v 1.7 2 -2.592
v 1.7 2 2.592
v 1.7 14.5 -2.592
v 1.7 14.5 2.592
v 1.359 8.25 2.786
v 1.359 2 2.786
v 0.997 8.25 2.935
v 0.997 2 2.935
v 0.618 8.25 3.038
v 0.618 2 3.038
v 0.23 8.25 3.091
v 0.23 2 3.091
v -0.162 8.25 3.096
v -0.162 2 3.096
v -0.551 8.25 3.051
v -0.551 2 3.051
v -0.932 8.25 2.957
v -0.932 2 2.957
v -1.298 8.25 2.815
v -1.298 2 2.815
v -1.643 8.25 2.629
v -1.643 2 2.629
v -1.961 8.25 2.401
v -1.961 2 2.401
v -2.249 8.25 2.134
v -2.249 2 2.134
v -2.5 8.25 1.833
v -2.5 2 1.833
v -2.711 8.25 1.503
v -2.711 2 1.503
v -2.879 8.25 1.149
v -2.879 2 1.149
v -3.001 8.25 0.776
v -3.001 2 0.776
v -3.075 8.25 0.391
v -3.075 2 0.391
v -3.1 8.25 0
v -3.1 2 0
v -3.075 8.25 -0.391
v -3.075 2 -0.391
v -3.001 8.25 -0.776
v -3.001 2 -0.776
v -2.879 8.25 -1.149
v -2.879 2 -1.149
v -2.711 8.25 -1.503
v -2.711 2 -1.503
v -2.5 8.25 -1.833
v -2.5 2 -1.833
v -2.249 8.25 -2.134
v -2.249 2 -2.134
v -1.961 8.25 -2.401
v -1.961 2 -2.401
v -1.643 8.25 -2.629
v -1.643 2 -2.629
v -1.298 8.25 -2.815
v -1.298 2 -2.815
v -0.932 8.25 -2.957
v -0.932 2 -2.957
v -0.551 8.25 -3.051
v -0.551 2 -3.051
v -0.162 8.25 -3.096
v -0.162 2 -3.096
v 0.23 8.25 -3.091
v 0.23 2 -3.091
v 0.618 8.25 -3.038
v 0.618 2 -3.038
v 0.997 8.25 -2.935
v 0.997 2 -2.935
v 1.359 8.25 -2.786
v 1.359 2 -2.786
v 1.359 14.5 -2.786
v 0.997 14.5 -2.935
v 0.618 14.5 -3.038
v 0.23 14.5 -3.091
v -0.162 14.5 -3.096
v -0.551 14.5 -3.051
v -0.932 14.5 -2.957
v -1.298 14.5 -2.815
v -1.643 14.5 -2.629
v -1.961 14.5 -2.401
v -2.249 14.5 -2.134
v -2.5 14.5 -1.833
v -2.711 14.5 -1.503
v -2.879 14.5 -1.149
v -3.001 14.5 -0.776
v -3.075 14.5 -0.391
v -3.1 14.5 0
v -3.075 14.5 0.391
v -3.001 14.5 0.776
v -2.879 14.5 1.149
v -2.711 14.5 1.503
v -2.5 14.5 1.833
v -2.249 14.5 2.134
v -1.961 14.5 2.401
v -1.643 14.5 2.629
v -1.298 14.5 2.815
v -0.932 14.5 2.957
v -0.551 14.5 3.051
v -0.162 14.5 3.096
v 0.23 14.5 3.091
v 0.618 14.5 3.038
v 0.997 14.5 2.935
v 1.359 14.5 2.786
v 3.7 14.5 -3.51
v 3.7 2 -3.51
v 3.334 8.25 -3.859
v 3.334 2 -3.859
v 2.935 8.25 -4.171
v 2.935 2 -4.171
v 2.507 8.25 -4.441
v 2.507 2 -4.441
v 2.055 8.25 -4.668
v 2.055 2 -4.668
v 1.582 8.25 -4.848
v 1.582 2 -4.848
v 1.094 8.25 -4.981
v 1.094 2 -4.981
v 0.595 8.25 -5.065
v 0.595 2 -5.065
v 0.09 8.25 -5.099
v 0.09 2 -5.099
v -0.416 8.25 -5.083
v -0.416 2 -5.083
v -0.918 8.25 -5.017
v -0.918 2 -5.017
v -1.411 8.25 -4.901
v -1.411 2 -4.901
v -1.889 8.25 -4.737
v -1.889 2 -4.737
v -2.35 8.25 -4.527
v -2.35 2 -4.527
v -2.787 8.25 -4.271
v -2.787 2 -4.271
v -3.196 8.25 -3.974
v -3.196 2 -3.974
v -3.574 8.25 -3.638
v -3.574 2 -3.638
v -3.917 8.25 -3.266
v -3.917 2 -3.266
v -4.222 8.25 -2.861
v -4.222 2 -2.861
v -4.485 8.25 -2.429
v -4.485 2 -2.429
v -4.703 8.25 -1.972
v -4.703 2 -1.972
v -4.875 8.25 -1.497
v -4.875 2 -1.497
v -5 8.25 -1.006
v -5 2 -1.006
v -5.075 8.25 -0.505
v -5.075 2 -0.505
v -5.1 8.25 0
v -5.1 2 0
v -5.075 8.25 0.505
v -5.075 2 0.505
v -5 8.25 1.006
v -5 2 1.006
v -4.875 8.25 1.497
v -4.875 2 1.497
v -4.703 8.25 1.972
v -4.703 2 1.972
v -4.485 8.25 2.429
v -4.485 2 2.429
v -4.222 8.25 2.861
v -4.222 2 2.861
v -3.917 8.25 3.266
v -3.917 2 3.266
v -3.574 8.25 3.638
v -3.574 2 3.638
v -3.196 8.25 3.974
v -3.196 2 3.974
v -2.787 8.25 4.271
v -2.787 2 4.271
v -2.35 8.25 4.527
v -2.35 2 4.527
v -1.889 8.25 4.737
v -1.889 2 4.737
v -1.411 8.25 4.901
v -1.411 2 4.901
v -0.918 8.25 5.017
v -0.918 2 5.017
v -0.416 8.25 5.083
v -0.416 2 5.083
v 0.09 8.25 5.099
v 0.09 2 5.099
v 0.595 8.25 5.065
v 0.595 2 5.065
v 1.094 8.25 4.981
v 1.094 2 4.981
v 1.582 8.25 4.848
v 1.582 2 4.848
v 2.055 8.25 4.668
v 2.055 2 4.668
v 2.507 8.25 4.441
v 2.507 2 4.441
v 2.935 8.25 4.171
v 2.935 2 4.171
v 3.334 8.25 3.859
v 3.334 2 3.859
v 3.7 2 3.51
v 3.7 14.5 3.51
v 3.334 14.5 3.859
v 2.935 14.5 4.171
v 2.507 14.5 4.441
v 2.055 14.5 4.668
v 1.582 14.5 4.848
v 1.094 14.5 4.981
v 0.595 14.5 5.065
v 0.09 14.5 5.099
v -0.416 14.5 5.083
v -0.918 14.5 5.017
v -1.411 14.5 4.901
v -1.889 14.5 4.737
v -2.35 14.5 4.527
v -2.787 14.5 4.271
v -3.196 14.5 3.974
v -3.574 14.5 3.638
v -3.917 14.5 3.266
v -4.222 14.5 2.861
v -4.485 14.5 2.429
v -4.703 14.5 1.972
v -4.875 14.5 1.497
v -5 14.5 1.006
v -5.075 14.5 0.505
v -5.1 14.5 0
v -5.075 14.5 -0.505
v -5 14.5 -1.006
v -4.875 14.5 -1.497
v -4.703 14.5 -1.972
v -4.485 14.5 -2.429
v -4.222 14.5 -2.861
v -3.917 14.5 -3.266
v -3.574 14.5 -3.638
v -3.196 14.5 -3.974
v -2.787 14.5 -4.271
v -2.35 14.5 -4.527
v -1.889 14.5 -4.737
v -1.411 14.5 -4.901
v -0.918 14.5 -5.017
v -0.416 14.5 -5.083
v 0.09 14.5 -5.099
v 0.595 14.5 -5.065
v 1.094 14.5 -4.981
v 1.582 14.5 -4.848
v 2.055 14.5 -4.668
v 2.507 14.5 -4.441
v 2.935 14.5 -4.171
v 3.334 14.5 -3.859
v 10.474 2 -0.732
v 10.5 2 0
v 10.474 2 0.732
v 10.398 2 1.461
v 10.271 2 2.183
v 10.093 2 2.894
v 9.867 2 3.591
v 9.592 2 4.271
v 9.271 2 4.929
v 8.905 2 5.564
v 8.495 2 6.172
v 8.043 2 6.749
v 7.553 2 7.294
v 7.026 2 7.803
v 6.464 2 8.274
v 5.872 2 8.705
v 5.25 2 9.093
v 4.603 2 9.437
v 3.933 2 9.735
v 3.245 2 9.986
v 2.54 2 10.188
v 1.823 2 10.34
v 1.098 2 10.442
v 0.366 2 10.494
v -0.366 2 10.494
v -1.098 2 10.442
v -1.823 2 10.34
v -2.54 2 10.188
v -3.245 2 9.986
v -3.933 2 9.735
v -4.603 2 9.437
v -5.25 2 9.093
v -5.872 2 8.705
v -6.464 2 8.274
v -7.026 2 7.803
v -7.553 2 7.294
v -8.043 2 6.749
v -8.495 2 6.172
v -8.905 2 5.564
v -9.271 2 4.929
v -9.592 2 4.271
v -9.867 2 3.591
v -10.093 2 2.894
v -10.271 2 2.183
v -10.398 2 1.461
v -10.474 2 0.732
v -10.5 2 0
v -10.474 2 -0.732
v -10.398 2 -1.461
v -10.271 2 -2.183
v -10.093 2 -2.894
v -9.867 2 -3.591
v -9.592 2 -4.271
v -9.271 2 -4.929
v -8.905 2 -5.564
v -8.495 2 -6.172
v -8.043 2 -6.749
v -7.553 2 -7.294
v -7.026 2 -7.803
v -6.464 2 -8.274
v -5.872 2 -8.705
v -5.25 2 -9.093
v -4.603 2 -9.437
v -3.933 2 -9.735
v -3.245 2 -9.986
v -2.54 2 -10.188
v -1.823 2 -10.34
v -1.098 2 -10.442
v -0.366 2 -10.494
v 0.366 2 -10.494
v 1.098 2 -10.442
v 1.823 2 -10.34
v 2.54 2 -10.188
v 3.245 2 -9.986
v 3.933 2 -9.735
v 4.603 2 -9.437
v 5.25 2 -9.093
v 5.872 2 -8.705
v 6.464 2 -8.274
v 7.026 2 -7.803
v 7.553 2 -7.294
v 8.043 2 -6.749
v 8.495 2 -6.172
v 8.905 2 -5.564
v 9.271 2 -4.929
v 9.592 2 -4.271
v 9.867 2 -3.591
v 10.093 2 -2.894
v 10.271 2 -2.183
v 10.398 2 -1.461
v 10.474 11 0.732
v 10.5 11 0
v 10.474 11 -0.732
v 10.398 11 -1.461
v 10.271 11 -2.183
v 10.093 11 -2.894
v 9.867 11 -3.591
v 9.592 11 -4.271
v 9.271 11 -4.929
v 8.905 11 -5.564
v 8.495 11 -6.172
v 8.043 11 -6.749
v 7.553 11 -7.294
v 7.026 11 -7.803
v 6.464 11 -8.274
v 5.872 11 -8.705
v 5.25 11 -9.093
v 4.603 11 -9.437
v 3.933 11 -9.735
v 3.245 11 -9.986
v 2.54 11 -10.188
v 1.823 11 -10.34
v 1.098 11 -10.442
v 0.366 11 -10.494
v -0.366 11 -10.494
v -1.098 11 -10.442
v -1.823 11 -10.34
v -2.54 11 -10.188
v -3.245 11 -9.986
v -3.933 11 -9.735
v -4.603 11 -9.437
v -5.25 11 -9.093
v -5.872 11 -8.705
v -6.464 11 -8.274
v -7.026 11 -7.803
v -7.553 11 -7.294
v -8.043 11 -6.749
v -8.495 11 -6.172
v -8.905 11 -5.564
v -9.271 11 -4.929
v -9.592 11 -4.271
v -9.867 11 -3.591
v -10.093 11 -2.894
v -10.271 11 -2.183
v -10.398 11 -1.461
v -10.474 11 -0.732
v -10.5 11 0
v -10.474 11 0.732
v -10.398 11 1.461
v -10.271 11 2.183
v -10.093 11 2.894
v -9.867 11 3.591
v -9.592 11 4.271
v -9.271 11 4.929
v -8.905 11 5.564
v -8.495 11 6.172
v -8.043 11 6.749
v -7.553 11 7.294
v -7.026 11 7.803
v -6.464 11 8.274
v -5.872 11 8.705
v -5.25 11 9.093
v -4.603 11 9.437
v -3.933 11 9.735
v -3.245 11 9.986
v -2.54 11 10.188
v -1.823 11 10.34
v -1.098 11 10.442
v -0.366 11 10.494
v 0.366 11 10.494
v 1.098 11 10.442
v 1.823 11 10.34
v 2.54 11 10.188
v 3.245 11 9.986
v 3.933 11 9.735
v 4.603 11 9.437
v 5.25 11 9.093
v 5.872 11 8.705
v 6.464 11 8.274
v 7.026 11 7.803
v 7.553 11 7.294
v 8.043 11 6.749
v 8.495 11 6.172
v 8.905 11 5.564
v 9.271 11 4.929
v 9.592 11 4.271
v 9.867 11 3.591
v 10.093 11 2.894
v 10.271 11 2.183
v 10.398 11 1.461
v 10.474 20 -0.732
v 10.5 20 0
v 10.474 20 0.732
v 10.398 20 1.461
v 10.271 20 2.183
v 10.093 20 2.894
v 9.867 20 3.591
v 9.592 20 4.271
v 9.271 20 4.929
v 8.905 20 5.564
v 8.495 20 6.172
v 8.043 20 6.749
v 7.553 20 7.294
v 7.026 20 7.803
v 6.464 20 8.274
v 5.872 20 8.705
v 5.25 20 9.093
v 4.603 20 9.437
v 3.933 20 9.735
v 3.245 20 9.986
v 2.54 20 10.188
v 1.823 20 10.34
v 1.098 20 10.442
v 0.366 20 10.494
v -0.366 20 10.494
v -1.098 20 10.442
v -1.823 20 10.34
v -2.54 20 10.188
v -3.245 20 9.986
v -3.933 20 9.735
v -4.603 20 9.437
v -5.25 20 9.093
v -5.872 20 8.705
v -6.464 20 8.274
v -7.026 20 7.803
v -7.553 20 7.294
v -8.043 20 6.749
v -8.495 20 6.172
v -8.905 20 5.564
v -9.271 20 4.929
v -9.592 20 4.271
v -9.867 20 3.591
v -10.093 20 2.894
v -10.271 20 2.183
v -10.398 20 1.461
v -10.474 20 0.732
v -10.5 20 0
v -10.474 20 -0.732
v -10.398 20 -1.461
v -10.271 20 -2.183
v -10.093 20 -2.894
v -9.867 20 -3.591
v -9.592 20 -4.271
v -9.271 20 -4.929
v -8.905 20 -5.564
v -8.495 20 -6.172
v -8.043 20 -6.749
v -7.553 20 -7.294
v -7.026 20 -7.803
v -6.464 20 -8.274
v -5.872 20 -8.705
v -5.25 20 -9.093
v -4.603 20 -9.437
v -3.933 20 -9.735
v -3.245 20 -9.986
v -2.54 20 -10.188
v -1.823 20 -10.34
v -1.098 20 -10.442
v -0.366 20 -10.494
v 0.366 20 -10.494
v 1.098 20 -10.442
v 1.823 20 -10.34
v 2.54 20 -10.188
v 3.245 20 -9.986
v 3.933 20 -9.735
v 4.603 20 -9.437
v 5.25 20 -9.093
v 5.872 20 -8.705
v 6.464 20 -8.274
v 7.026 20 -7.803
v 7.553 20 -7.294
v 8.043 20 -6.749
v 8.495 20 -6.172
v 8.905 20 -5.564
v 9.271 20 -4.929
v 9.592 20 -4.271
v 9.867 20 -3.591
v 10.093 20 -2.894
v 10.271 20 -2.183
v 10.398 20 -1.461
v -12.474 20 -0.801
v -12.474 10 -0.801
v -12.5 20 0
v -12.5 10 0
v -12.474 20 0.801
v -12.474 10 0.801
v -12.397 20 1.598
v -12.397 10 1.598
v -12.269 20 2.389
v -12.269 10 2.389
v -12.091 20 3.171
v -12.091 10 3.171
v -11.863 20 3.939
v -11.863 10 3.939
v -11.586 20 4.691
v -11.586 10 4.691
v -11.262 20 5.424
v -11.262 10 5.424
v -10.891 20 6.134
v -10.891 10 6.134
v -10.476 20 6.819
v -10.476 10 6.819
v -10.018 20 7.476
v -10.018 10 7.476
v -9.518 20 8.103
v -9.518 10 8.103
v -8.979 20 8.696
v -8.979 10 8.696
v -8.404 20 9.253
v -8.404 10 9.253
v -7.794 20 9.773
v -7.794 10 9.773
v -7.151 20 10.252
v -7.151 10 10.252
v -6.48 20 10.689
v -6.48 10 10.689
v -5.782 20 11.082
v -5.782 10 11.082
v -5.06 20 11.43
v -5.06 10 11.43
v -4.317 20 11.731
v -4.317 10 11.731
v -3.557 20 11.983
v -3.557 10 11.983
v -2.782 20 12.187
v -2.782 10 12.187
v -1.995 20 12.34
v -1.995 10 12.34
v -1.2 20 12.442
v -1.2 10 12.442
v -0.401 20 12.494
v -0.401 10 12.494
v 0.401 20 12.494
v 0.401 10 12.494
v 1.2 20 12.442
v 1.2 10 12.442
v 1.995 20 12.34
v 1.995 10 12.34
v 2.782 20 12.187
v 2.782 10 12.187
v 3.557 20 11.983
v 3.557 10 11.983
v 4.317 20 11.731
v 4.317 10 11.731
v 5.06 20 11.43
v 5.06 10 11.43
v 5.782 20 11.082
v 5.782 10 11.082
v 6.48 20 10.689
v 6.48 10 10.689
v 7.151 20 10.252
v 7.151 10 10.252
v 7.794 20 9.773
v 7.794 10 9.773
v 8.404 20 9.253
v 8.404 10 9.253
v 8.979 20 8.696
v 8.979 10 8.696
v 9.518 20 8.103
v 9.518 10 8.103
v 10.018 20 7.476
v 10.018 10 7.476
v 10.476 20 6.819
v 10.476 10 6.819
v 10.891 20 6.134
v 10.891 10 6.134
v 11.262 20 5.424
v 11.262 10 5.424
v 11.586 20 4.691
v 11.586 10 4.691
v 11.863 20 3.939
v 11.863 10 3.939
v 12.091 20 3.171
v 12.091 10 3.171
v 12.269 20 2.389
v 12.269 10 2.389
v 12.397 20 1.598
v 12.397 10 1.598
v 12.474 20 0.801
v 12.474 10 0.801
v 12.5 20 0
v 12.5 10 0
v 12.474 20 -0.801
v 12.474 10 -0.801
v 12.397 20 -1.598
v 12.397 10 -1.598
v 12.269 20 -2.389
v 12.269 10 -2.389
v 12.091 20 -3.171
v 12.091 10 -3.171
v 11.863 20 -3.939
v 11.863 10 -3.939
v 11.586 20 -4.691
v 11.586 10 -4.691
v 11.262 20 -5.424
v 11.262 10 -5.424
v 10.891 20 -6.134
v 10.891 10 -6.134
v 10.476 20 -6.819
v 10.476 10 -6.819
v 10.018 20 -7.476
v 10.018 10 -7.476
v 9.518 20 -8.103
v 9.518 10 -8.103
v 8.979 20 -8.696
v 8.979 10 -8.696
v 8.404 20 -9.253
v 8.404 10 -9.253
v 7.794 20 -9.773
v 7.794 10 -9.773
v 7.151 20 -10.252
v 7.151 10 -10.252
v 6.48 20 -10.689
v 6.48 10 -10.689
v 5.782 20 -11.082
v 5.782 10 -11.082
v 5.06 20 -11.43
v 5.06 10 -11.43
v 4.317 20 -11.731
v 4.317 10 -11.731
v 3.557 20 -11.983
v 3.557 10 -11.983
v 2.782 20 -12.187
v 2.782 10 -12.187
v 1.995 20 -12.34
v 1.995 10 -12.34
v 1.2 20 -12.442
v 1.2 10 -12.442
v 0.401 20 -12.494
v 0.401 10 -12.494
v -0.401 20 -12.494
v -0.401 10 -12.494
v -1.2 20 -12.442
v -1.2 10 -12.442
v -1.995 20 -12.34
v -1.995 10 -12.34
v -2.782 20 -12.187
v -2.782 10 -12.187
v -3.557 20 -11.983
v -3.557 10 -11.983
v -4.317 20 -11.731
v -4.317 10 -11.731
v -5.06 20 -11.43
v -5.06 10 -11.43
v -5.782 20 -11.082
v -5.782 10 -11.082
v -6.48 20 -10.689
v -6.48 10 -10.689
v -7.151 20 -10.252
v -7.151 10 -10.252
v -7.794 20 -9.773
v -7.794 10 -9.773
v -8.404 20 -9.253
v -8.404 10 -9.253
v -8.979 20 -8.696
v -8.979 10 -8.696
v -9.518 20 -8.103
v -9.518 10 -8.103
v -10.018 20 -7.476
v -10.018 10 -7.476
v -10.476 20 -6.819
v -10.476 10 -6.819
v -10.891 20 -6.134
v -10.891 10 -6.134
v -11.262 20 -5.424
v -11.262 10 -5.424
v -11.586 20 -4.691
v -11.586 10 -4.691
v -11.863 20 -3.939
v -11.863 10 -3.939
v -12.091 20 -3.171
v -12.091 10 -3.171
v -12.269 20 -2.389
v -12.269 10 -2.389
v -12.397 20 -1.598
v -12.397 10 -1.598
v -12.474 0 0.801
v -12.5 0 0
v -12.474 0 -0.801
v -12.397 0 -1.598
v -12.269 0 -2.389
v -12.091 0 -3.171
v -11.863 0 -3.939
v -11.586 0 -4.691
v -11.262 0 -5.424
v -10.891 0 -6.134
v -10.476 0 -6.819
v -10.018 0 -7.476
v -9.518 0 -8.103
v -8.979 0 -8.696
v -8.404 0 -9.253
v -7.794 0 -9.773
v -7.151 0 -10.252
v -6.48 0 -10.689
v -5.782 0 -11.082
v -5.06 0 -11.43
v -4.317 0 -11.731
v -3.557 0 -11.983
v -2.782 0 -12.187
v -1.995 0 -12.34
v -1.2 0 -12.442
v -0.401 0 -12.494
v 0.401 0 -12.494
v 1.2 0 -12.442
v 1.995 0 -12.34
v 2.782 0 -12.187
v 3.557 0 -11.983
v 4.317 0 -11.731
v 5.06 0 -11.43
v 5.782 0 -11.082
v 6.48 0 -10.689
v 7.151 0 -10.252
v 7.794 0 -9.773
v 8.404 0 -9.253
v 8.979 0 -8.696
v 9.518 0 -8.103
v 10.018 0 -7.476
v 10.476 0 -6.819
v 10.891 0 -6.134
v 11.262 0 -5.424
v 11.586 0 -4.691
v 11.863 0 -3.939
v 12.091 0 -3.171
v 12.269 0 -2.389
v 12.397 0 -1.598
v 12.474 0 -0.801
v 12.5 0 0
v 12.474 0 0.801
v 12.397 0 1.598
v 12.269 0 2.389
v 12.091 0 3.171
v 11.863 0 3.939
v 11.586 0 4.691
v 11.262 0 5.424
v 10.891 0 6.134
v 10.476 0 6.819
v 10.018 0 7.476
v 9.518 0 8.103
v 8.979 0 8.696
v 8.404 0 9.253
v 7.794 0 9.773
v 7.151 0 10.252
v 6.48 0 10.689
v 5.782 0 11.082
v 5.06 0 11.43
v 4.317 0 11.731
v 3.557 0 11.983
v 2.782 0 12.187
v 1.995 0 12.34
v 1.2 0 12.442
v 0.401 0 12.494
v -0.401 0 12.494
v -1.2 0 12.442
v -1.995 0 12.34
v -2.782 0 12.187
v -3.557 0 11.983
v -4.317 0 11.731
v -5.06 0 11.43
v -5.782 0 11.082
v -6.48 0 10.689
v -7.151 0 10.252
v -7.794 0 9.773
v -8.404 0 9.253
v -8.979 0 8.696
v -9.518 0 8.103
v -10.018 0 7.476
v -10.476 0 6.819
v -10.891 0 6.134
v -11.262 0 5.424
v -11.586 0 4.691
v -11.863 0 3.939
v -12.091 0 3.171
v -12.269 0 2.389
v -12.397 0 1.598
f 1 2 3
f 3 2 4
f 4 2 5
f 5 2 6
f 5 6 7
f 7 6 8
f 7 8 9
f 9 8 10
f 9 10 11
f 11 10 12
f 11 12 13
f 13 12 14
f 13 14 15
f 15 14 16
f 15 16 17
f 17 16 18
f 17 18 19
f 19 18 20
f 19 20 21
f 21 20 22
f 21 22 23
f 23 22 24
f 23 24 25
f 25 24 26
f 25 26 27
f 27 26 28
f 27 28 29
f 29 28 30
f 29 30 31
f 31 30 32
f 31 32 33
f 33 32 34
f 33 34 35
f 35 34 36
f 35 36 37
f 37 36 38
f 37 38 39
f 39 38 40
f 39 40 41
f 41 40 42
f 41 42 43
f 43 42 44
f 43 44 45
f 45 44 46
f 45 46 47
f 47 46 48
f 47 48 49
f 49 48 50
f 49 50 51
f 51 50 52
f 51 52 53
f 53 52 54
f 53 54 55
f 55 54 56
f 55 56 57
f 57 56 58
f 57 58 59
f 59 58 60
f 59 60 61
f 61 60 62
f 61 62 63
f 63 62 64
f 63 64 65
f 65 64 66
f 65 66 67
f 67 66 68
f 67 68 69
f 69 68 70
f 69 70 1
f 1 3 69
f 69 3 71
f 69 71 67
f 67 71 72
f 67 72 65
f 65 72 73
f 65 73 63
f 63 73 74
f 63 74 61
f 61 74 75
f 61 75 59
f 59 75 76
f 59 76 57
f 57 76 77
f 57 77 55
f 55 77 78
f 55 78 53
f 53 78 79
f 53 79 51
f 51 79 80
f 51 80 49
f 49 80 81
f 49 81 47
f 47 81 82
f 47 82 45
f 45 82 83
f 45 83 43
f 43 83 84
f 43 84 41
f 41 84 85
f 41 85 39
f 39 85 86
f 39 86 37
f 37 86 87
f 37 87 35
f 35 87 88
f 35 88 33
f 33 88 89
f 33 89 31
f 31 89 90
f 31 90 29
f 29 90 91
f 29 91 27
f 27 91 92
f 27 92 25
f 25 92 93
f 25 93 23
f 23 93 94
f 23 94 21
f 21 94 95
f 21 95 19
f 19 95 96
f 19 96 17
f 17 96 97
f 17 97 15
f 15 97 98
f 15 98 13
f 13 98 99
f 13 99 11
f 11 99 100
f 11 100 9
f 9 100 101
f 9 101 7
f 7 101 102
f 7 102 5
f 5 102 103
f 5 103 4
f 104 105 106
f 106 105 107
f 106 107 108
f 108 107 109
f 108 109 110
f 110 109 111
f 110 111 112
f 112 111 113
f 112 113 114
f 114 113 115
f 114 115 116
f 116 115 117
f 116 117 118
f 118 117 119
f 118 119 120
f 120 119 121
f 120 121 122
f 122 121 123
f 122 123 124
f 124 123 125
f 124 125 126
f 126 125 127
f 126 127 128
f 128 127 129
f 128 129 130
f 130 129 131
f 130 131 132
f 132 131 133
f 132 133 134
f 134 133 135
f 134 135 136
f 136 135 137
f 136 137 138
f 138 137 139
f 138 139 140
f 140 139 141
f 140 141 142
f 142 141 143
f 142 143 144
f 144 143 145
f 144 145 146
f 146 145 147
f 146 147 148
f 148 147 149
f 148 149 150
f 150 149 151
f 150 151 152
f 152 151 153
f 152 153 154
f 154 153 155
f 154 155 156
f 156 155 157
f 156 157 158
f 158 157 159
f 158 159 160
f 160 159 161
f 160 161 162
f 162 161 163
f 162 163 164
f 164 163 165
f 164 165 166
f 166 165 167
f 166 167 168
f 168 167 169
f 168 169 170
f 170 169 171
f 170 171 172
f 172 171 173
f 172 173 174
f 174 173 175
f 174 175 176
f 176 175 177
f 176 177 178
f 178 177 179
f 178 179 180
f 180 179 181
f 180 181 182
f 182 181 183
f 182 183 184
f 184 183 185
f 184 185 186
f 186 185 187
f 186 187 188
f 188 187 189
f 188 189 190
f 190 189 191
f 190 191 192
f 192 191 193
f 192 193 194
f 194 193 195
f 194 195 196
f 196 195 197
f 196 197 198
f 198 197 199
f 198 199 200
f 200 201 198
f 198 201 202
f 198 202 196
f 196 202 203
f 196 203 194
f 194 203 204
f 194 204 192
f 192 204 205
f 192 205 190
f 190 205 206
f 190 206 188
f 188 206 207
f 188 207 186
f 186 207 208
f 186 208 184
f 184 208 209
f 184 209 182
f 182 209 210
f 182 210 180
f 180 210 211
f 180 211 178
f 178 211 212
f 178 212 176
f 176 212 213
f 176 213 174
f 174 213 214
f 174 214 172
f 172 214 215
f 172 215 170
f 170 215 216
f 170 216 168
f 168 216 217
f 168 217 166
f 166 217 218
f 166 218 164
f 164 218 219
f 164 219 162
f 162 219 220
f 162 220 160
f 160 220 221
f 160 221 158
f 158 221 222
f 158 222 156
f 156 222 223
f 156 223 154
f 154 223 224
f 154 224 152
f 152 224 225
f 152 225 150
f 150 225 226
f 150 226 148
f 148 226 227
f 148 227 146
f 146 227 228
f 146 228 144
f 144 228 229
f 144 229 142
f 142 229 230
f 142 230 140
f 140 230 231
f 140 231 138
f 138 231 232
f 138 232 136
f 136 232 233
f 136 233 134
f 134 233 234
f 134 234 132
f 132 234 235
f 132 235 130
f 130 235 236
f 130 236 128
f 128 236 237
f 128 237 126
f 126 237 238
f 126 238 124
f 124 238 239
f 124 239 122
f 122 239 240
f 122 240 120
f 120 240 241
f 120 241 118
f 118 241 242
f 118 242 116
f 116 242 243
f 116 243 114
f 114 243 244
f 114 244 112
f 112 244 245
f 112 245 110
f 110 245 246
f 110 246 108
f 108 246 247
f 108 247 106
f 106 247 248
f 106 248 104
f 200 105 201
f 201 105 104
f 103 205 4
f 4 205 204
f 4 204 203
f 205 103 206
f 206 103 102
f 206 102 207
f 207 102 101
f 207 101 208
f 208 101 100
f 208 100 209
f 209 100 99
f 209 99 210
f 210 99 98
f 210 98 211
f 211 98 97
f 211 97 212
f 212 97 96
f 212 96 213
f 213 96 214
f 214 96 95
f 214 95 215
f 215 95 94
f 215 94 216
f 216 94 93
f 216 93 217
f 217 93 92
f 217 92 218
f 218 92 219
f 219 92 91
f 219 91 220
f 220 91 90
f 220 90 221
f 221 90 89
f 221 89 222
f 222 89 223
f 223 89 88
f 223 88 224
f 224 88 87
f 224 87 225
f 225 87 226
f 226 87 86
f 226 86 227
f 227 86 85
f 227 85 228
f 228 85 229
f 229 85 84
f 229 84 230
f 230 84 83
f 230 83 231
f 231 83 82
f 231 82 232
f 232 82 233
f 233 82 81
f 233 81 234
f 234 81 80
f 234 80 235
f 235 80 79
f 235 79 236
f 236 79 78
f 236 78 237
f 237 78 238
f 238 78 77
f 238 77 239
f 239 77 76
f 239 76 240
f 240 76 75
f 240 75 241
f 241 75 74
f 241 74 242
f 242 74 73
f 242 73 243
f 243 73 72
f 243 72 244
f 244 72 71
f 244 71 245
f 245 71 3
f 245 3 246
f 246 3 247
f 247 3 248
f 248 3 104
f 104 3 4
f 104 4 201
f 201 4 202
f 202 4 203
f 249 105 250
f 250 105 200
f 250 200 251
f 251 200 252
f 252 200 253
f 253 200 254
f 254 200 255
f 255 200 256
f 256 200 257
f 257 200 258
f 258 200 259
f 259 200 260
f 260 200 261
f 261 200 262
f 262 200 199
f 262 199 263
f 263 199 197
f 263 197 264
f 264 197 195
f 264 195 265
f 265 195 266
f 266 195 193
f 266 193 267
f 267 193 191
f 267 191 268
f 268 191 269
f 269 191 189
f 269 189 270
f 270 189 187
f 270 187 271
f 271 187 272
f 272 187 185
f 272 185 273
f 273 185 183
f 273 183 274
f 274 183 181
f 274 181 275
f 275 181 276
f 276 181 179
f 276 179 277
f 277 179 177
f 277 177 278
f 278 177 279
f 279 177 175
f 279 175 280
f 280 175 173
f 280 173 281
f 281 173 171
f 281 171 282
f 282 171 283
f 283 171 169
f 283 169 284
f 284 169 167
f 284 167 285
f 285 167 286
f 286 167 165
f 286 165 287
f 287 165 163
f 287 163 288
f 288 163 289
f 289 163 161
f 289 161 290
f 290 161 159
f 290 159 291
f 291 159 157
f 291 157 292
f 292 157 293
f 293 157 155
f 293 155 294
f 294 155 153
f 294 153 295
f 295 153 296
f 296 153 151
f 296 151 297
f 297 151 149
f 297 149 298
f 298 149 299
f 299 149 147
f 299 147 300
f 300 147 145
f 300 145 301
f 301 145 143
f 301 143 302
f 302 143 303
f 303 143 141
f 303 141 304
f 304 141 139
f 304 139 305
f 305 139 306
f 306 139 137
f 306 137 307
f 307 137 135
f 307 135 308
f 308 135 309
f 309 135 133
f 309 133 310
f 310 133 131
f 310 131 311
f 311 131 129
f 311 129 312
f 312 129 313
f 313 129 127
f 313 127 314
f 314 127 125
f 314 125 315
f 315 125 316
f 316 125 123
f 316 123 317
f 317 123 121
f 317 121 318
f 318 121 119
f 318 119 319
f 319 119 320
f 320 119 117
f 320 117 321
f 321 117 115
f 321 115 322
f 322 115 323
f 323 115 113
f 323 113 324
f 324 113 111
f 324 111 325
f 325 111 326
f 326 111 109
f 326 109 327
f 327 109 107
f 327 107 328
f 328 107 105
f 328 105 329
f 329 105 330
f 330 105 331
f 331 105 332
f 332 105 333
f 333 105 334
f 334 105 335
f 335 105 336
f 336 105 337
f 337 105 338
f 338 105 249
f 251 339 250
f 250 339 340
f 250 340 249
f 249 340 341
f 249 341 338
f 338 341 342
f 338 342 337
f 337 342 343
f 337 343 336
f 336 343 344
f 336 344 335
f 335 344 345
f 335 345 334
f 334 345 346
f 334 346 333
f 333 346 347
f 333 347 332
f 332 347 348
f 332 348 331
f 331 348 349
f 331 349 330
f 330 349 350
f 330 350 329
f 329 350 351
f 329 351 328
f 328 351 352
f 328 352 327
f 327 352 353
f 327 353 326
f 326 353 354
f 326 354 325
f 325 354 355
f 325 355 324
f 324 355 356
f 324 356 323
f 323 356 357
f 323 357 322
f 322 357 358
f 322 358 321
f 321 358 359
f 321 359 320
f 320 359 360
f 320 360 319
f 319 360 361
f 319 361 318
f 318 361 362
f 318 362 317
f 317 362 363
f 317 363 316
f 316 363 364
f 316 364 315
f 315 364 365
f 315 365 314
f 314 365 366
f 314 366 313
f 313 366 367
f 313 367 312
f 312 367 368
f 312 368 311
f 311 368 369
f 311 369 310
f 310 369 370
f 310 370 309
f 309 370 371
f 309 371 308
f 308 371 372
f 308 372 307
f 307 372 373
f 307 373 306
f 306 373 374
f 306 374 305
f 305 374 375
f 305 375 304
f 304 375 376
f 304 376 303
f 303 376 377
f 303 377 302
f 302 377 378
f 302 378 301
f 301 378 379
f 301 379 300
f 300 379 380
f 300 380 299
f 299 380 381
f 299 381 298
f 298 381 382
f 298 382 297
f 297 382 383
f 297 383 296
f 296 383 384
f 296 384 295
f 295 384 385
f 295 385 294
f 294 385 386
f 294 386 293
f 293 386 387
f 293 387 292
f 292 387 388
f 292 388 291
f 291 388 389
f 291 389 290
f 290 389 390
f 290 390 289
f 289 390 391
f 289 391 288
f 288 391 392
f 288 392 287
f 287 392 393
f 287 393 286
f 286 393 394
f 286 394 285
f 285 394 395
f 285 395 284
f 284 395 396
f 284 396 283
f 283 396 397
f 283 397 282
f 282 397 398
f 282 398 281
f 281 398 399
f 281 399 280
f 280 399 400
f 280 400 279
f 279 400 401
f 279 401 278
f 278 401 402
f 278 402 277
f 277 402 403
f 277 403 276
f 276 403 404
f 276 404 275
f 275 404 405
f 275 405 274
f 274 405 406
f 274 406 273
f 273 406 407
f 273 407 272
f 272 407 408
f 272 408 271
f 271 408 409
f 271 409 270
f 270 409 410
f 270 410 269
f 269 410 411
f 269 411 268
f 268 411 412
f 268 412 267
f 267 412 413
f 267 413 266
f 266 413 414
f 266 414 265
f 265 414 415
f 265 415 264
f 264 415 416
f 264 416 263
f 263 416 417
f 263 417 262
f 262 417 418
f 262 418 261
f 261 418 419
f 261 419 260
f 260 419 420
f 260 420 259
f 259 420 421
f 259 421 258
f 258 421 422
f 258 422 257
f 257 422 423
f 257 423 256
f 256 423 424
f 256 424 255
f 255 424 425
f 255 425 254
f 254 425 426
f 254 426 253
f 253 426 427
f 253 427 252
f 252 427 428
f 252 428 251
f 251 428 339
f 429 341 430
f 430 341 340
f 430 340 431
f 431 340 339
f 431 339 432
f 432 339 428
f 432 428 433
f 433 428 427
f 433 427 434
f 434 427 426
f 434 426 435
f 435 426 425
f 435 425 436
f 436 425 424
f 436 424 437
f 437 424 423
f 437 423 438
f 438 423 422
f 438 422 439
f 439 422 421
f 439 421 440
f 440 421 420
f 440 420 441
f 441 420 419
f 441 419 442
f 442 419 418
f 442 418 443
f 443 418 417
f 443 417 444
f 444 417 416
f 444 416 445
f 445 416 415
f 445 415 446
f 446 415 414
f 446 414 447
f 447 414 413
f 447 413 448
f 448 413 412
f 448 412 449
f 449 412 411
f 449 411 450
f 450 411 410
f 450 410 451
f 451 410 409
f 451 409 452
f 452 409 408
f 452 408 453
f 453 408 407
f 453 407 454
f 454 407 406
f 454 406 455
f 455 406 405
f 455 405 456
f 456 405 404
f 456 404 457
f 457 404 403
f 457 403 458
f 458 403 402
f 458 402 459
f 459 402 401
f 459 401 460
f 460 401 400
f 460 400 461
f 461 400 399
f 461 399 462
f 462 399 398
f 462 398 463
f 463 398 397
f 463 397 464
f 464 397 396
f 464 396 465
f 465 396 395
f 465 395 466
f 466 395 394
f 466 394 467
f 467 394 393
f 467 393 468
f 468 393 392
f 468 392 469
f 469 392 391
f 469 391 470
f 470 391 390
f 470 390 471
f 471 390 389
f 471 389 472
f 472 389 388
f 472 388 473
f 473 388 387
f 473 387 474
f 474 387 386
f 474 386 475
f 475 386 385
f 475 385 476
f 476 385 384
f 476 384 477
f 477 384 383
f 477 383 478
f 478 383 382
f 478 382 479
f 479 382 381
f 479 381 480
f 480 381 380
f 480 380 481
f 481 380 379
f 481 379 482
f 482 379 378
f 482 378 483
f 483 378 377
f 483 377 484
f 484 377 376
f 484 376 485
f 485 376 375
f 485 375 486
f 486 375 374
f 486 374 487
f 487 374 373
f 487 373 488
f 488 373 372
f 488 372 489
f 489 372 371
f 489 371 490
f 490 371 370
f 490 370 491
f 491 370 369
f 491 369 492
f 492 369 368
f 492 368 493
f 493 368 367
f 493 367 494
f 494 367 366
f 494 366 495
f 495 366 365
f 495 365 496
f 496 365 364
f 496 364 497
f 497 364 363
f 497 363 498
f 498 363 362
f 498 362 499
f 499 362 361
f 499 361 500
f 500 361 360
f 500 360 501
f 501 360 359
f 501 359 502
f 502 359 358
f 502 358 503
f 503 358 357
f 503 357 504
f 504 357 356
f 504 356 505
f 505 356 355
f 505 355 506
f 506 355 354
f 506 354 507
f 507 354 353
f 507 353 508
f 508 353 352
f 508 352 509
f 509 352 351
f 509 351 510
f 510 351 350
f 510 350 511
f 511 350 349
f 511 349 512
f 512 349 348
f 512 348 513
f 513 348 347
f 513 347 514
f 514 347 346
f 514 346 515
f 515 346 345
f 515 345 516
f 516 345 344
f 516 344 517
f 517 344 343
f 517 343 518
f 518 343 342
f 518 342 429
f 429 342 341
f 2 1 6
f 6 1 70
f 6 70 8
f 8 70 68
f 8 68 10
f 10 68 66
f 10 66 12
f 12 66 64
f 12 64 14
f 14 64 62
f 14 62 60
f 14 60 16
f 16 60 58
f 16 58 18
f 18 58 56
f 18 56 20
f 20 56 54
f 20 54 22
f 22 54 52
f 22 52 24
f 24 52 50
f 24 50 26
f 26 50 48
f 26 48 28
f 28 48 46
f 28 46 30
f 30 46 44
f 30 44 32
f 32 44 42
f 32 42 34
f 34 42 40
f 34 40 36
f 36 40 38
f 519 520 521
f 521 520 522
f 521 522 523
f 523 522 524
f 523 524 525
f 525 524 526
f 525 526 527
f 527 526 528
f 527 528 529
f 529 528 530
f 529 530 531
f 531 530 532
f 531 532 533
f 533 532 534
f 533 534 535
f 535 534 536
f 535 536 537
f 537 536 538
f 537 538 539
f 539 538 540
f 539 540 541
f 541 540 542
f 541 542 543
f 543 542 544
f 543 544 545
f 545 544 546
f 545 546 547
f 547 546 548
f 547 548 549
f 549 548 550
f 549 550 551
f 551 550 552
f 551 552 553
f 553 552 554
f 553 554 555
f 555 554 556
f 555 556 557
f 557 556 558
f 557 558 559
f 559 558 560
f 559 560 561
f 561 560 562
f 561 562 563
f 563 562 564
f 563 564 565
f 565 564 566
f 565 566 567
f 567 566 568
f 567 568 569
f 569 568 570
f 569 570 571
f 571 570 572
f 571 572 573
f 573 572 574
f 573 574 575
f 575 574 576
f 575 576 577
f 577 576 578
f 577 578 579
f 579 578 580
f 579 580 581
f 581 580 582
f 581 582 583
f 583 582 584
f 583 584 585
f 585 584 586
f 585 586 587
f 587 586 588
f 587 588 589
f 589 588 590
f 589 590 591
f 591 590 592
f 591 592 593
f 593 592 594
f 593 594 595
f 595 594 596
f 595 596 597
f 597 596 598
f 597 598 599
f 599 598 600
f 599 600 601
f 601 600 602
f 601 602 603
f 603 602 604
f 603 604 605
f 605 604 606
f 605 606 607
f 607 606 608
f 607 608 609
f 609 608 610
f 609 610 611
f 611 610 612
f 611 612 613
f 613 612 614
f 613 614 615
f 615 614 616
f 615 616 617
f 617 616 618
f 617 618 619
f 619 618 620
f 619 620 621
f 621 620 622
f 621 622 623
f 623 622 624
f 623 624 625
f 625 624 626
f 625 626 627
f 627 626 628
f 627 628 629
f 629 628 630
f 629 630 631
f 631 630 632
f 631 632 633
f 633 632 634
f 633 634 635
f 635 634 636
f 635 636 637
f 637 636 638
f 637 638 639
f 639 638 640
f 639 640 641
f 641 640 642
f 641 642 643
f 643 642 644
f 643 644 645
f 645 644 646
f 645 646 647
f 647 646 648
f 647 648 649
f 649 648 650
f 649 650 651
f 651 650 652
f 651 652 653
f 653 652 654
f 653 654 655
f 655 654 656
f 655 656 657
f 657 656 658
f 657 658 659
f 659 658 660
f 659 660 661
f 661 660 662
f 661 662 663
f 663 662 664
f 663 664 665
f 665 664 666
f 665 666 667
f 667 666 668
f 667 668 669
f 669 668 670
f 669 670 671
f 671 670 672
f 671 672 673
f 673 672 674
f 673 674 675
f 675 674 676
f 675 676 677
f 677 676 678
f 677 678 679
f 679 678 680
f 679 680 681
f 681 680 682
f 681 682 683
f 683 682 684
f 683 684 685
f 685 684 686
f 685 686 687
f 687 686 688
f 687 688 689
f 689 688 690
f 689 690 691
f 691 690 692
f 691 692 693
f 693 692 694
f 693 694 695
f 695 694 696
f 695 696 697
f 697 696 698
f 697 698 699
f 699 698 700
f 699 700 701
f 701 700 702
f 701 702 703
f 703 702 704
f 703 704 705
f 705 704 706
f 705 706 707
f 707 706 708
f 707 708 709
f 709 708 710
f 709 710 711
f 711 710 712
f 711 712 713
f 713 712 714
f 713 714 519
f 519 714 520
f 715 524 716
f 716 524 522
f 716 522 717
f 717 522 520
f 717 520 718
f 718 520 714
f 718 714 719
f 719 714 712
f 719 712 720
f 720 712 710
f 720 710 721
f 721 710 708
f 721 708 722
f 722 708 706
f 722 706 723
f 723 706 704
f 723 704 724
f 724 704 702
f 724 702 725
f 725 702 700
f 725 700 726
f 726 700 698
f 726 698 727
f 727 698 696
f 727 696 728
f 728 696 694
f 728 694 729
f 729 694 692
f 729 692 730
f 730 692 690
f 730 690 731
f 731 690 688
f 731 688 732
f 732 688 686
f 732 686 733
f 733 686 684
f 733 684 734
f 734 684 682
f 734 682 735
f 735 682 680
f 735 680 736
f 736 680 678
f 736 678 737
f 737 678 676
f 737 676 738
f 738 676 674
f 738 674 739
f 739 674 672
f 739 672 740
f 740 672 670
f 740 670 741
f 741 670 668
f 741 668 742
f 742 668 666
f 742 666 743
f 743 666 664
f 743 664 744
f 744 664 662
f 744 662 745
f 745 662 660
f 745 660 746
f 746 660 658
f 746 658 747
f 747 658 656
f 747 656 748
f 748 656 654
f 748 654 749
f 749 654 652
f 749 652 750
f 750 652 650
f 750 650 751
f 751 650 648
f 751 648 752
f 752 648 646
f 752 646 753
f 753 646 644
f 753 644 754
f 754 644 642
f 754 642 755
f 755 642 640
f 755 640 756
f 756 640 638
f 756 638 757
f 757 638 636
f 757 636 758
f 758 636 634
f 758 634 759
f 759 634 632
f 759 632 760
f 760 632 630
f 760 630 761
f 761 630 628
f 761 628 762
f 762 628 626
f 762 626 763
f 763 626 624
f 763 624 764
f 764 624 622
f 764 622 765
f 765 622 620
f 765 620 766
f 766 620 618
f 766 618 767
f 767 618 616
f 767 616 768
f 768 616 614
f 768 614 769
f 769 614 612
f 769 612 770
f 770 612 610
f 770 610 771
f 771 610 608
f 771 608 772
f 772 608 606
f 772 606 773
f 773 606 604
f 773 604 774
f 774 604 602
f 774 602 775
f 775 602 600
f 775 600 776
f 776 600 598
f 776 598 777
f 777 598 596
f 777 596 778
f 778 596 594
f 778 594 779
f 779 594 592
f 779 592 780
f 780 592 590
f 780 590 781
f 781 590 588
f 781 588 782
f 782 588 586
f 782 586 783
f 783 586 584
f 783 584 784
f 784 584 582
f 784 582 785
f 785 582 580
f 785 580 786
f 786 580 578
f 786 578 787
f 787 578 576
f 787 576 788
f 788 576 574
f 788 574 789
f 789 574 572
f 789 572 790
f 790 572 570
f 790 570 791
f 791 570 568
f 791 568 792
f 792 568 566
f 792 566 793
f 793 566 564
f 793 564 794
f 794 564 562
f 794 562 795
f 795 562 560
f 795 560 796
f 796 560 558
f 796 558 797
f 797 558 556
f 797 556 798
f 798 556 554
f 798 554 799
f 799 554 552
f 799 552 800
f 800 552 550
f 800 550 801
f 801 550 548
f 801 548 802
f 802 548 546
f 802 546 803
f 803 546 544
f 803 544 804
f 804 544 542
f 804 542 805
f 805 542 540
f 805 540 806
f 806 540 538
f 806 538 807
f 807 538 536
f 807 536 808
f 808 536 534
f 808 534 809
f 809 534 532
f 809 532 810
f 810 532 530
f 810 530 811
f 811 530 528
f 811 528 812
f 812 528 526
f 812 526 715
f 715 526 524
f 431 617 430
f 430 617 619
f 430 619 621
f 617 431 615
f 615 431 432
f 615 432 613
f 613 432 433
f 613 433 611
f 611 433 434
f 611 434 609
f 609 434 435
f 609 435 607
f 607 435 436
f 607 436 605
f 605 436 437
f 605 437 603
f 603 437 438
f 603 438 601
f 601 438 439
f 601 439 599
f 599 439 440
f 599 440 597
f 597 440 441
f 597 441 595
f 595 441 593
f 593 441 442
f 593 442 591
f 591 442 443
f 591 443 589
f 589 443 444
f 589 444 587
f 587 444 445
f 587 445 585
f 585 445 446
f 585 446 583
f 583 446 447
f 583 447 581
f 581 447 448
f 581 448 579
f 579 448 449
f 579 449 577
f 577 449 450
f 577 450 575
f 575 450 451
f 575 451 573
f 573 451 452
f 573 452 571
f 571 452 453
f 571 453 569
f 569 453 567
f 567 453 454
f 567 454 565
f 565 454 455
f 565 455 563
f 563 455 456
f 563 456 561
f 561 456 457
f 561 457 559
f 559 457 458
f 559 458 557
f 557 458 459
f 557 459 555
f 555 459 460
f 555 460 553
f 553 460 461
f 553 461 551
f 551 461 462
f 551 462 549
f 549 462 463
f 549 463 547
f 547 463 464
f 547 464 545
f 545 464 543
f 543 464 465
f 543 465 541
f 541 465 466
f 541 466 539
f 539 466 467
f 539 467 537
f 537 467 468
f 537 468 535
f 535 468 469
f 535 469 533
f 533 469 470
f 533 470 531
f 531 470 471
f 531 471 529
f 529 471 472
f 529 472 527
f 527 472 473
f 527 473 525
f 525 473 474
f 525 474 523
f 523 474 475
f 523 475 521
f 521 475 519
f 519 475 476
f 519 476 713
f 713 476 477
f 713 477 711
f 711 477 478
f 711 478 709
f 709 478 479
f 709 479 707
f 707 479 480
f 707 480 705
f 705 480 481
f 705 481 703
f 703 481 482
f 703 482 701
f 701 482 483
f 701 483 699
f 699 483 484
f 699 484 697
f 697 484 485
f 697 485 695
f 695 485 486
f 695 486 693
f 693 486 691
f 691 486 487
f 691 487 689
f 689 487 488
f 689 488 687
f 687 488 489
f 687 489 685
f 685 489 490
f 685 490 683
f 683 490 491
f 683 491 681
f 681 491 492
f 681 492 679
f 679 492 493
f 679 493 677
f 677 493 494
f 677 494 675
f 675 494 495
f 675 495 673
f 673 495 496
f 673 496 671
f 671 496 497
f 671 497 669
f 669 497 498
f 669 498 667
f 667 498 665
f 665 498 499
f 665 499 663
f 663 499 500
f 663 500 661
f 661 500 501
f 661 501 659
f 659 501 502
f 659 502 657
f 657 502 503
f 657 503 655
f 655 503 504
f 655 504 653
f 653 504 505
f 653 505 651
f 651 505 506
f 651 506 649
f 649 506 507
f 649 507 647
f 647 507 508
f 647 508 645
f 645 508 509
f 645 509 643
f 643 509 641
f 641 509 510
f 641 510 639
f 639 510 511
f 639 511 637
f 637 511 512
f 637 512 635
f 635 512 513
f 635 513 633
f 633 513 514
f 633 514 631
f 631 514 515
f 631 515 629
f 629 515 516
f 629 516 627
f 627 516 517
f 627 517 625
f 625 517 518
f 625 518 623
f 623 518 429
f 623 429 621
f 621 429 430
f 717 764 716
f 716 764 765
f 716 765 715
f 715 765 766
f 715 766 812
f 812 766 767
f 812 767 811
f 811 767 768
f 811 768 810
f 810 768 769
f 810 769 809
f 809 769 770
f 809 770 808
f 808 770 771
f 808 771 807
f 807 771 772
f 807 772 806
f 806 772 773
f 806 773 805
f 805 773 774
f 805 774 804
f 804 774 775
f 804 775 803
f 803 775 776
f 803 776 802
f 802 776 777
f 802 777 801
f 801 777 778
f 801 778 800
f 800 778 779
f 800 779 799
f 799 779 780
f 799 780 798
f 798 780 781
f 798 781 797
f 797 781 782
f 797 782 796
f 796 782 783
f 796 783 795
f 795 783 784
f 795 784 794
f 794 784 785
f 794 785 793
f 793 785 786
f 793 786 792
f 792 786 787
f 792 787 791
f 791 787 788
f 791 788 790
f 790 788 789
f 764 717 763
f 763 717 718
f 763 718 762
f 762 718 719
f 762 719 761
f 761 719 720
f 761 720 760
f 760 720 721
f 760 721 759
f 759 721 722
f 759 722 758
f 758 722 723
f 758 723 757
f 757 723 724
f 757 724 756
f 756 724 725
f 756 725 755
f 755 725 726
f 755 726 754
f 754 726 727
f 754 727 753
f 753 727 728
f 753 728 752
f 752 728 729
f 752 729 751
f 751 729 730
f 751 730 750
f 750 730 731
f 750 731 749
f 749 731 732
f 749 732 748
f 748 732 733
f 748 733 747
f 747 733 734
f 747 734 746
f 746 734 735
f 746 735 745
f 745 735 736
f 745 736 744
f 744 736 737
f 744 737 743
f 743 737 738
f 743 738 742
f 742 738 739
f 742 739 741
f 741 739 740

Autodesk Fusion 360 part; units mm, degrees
sketch "Outer" plane through (0, 0, 0) normal (0, 1, 0) x (1, 0, 0)
  circle A0 centre (0, 0) radius 12.5
  dimension "d1" = 25
extrude "Outer Extrusion" add sketch "Outer" along normal blind 20
sketch "Inner" plane through (0, 20, 0) normal (0, 1, 0) x (-1, 0, 0)
  circle A0 centre (0, 0) radius 12.5
  circle A1 centre (0, 0) radius 10.5
  dimension "d4" = 21
extrude "Inner Extrusion" cut sketch "Inner" against normal blind 18 contours A1
sketch "Shaft" plane through (0, 2, 0) normal (0, 1, 0) x (-1, 0, 0)
  circle A0 centre (0, 0) radius 10.5
  line L0 (-1.7, 2.5923) -> (-1.7, -2.5923)
  arc A1 (-1.7, -2.5923) -> (-1.7, 2.5923) centre (0, 0) ccw
  arc A2 (-3.7, -3.51) -> (-3.7, 3.51) centre (0, 0) ccw
  line L1 (-3.7, 3.51) -> (-3.7, -3.51)
  dimension "d7" = 6.2
  dimension "d8" = 1.7
  dimension "d9" = 2
extrude "Shaft Extrusion" add sketch "Shaft" along normal blind 12.5 contours A2 L1
equation "d4 = 25 mm - 2 mm - 2 mm"
equation "d5 = -( 20 mm - 2 mm )"
equation "d7 = 5.8 mm + 0.2 mm + 0.2 mm"
equation "d8 = ( 4.5 mm - 3 mm ) + 0.2 mm"
equation "d10 = 20 mm - 2 mm - 5.5 mm"
